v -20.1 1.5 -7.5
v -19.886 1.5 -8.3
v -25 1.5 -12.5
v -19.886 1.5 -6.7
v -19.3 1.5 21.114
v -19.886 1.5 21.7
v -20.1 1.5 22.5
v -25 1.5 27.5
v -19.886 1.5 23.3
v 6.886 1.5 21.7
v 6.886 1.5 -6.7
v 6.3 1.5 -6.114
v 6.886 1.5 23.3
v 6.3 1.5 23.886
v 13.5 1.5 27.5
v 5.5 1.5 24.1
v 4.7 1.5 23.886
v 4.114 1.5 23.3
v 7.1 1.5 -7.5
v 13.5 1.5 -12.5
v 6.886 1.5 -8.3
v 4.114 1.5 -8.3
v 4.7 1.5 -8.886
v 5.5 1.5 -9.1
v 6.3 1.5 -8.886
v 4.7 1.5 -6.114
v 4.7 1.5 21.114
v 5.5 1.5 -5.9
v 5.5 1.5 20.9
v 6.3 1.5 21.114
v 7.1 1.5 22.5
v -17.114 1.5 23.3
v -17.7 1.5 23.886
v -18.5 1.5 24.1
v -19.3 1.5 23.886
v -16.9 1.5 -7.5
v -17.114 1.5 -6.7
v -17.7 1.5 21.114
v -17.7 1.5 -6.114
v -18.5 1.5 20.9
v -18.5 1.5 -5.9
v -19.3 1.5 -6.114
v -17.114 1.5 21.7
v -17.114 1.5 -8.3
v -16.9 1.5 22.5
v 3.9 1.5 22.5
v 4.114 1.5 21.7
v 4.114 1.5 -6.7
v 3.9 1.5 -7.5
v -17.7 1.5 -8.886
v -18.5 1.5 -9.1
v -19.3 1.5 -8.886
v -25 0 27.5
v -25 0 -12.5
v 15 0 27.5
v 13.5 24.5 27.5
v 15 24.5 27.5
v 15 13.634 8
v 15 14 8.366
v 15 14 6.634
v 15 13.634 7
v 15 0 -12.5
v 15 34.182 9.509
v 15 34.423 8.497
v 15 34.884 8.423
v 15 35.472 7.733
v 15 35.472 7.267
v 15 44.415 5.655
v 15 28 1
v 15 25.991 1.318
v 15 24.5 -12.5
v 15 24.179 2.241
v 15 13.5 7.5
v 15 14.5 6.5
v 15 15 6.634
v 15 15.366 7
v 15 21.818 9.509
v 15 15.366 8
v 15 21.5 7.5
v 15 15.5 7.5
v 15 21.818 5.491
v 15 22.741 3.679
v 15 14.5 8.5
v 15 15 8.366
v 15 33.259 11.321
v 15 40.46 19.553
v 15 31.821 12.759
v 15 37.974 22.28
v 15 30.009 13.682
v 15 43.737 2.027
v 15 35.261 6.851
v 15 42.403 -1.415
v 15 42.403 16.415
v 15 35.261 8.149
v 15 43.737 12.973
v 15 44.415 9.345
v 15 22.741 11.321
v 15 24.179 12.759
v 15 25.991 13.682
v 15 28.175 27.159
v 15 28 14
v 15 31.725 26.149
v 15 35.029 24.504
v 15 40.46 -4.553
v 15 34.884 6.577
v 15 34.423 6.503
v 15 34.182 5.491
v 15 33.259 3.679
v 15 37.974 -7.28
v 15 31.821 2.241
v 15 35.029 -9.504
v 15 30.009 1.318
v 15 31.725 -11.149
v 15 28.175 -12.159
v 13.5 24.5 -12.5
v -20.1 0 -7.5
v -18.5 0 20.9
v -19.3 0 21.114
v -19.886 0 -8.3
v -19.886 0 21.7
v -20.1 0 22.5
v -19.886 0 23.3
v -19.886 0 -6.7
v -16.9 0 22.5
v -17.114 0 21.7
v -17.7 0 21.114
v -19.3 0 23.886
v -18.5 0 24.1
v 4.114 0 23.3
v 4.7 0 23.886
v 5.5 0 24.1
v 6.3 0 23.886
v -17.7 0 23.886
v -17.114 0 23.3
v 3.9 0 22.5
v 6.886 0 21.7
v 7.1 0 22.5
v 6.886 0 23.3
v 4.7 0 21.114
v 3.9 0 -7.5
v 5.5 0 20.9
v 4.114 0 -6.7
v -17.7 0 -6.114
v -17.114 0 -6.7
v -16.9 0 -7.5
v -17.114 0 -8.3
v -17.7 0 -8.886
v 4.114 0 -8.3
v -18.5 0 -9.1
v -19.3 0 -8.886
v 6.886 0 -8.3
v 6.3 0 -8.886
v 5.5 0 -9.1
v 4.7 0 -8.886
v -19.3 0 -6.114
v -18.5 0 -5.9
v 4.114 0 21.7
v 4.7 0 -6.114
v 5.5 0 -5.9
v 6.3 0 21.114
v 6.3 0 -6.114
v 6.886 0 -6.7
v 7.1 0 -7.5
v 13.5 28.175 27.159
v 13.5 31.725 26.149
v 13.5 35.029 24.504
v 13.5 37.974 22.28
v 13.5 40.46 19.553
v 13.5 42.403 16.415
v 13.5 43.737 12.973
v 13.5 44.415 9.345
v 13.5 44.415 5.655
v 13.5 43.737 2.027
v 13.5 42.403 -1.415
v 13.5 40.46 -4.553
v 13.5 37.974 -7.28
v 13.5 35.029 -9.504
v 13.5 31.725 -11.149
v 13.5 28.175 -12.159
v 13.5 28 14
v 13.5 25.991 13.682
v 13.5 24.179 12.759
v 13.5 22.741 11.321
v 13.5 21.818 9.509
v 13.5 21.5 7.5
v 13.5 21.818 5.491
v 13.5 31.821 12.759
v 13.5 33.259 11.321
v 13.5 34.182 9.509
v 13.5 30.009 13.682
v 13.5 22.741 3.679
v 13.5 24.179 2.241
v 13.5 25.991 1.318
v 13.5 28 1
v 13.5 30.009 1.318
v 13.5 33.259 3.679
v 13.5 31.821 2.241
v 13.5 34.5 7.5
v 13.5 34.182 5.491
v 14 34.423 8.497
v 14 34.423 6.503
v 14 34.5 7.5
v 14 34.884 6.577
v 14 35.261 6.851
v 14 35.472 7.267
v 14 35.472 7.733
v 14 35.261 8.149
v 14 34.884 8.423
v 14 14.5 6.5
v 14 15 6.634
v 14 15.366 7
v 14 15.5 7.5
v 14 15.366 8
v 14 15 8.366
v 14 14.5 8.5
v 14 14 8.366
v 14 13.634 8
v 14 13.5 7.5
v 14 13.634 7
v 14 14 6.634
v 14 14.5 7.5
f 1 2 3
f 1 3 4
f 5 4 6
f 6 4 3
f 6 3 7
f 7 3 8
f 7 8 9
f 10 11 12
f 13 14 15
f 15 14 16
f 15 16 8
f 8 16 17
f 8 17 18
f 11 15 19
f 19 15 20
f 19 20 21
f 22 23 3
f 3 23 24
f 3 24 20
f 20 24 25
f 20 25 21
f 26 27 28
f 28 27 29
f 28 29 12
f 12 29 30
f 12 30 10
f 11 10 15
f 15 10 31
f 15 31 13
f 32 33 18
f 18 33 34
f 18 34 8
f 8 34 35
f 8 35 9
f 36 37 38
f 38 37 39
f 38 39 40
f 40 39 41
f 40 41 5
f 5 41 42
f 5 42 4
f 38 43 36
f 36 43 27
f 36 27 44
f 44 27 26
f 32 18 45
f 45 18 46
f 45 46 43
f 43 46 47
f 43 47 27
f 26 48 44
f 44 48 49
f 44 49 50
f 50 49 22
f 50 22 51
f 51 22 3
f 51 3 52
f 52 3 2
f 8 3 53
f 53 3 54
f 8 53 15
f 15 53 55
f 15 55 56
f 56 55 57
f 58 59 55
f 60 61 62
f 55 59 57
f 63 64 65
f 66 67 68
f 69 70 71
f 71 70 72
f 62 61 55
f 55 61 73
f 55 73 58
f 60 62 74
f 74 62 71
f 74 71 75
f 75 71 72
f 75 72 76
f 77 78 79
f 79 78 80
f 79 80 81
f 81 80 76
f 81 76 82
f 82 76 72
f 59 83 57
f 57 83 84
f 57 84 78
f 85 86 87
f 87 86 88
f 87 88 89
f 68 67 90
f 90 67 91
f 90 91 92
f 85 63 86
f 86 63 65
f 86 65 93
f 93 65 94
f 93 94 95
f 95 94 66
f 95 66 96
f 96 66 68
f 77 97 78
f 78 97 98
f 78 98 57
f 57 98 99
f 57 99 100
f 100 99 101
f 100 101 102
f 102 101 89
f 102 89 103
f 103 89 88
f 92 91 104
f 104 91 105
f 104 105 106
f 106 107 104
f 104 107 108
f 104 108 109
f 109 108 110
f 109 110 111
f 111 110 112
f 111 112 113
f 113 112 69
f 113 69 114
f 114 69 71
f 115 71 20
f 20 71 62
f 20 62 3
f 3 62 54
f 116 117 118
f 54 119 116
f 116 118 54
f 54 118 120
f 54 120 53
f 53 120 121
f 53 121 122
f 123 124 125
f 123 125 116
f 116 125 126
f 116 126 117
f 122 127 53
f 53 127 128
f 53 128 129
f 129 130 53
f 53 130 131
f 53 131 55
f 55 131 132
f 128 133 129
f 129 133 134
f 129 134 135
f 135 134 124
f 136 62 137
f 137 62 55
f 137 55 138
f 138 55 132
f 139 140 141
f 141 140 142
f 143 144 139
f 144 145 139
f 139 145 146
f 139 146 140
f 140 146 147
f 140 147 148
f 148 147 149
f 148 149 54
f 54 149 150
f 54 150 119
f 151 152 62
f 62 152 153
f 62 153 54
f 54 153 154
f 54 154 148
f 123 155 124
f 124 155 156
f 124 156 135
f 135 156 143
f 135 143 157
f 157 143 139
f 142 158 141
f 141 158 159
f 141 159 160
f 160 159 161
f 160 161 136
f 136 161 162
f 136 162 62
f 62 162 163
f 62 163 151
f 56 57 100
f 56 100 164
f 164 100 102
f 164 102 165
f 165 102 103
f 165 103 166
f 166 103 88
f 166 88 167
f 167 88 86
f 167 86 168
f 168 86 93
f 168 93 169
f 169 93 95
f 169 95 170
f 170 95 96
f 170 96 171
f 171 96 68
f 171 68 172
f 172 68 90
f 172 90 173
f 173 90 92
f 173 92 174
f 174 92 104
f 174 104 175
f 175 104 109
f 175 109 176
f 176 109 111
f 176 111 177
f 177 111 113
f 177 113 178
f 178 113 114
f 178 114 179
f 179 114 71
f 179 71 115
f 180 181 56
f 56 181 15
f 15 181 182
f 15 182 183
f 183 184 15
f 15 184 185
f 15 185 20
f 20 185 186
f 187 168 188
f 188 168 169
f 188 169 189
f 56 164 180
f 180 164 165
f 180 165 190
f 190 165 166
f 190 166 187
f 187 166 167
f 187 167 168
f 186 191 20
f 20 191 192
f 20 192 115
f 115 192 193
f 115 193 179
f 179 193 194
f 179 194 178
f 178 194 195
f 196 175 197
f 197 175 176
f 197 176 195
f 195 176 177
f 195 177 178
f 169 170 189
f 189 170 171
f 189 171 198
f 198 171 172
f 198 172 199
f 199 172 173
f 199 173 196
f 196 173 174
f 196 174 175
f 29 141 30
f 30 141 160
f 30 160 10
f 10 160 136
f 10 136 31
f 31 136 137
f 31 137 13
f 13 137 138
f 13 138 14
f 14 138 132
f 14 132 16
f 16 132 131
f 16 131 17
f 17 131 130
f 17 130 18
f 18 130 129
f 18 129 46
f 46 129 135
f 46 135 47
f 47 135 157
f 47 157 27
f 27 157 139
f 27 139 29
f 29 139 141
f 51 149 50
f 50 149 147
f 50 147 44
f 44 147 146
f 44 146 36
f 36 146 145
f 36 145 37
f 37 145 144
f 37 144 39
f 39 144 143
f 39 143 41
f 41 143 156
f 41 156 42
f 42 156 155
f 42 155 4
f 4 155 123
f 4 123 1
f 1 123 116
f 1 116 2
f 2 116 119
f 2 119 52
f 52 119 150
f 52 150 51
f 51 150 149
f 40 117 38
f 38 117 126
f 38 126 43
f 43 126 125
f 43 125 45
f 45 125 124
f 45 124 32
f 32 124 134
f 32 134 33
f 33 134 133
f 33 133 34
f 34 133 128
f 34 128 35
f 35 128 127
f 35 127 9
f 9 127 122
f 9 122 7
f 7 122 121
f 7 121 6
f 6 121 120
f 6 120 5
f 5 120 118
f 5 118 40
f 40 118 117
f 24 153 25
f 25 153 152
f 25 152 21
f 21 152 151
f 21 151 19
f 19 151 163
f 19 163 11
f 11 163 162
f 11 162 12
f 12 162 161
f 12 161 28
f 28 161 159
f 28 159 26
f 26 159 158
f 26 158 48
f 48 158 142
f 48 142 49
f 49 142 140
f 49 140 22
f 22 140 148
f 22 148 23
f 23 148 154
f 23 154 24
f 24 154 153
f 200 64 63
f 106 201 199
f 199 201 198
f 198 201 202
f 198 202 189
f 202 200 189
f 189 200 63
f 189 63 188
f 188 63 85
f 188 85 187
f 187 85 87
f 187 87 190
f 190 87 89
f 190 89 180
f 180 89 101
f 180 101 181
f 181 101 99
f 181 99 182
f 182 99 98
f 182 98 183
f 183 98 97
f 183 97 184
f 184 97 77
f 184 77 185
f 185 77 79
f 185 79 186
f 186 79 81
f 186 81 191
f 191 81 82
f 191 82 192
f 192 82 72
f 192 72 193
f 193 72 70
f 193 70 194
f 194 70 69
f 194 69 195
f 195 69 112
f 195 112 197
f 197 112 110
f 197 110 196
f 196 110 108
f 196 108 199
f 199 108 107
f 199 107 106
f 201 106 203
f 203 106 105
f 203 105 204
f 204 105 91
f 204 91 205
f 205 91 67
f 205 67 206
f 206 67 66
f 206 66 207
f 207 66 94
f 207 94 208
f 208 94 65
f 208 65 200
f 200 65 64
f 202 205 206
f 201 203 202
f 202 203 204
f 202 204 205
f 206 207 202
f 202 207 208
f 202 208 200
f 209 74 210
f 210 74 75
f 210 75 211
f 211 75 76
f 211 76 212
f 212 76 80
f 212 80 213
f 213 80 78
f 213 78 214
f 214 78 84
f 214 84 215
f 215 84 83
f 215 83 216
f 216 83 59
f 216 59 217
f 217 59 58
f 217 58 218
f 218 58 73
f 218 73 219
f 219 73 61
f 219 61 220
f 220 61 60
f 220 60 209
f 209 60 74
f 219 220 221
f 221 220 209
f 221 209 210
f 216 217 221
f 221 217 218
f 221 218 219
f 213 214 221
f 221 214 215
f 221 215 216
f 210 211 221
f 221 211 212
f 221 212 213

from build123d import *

# Parameters (mm, degrees)
SKETCH_1_W          = 40
SKETCH_1_H          = 40
EXTRUDE_1_DEPTH     = 1.5
EXTRUDE_2_DEPTH     = 1.5
SKETCH_4_R          = 1.6
CUT_EXTRUDE_1_DEPTH = 45.5
SKETCH_6_R          = 6.5
CUT_EXTRUDE_2_DEPTH = 41
SKETCH_7_R          = 1
CUT_EXTRUDE_3_DEPTH = 1


with BuildPart() as part:
    # 草图1 → 凸台-拉伸1 (new body)
    with BuildSketch(Plane(origin=(0, 0, 0), x_dir=(1, 0, 0), z_dir=(0, 1, 0))):
        with Locations((-5, -7.5)):
            Rectangle(SKETCH_1_W, SKETCH_1_H)
    extrude(amount=EXTRUDE_1_DEPTH)

    # 草图3 → 凸台-拉伸2 (add)
    with BuildSketch(Plane(origin=(15, 0, 0), x_dir=(0, 0, -1), z_dir=(1, 0, 0))):
        with BuildLine():
            Line((-27.5, 1.5), (12.5, 1.5))
            Line((12.5, 1.5), (12.5, 24.5))
            ThreePointArc((12.5, 24.5), (-7.5, 44.5), (-27.5, 24.5))
            Line((-27.5, 24.5), (-27.5, 1.5))
        make_face()
    extrude(amount=-EXTRUDE_2_DEPTH)

    # 草图4 → 切除-拉伸1 (cut, through all)
    with BuildSketch(Plane.XZ):
        with Locations((-18.5, 22.5)):
            Circle(SKETCH_4_R)
        with Locations((-18.5, -7.5)):
            Circle(SKETCH_4_R)
        with Locations((5.5, 22.5)):
            Circle(SKETCH_4_R)
        with Locations((5.5, -7.5)):
            Circle(SKETCH_4_R)
    extrude(amount=-CUT_EXTRUDE_1_DEPTH, mode=Mode.SUBTRACT)

    # 草图6 → 切除-拉伸2 (cut, through all)
    with BuildSketch(Plane(origin=(15, 0, 0), x_dir=(0, 0, -1), z_dir=(1, 0, 0))):
        with Locations((-7.5, 28)):
            Circle(SKETCH_6_R)
    extrude(amount=-CUT_EXTRUDE_2_DEPTH, mode=Mode.SUBTRACT)

    # 草图7 → 切除-拉伸3 (cut)
    with BuildSketch(Plane(origin=(15, 0, 0), x_dir=(0, 0, -1), z_dir=(1, 0, 0))):
        with Locations((-7.5, 14.5)):
            Circle(SKETCH_7_R)
        with Locations((-7.5, 34.5)):
            Circle(SKETCH_7_R)
    extrude(amount=-CUT_EXTRUDE_3_DEPTH, mode=Mode.SUBTRACT)


solid = part.part
